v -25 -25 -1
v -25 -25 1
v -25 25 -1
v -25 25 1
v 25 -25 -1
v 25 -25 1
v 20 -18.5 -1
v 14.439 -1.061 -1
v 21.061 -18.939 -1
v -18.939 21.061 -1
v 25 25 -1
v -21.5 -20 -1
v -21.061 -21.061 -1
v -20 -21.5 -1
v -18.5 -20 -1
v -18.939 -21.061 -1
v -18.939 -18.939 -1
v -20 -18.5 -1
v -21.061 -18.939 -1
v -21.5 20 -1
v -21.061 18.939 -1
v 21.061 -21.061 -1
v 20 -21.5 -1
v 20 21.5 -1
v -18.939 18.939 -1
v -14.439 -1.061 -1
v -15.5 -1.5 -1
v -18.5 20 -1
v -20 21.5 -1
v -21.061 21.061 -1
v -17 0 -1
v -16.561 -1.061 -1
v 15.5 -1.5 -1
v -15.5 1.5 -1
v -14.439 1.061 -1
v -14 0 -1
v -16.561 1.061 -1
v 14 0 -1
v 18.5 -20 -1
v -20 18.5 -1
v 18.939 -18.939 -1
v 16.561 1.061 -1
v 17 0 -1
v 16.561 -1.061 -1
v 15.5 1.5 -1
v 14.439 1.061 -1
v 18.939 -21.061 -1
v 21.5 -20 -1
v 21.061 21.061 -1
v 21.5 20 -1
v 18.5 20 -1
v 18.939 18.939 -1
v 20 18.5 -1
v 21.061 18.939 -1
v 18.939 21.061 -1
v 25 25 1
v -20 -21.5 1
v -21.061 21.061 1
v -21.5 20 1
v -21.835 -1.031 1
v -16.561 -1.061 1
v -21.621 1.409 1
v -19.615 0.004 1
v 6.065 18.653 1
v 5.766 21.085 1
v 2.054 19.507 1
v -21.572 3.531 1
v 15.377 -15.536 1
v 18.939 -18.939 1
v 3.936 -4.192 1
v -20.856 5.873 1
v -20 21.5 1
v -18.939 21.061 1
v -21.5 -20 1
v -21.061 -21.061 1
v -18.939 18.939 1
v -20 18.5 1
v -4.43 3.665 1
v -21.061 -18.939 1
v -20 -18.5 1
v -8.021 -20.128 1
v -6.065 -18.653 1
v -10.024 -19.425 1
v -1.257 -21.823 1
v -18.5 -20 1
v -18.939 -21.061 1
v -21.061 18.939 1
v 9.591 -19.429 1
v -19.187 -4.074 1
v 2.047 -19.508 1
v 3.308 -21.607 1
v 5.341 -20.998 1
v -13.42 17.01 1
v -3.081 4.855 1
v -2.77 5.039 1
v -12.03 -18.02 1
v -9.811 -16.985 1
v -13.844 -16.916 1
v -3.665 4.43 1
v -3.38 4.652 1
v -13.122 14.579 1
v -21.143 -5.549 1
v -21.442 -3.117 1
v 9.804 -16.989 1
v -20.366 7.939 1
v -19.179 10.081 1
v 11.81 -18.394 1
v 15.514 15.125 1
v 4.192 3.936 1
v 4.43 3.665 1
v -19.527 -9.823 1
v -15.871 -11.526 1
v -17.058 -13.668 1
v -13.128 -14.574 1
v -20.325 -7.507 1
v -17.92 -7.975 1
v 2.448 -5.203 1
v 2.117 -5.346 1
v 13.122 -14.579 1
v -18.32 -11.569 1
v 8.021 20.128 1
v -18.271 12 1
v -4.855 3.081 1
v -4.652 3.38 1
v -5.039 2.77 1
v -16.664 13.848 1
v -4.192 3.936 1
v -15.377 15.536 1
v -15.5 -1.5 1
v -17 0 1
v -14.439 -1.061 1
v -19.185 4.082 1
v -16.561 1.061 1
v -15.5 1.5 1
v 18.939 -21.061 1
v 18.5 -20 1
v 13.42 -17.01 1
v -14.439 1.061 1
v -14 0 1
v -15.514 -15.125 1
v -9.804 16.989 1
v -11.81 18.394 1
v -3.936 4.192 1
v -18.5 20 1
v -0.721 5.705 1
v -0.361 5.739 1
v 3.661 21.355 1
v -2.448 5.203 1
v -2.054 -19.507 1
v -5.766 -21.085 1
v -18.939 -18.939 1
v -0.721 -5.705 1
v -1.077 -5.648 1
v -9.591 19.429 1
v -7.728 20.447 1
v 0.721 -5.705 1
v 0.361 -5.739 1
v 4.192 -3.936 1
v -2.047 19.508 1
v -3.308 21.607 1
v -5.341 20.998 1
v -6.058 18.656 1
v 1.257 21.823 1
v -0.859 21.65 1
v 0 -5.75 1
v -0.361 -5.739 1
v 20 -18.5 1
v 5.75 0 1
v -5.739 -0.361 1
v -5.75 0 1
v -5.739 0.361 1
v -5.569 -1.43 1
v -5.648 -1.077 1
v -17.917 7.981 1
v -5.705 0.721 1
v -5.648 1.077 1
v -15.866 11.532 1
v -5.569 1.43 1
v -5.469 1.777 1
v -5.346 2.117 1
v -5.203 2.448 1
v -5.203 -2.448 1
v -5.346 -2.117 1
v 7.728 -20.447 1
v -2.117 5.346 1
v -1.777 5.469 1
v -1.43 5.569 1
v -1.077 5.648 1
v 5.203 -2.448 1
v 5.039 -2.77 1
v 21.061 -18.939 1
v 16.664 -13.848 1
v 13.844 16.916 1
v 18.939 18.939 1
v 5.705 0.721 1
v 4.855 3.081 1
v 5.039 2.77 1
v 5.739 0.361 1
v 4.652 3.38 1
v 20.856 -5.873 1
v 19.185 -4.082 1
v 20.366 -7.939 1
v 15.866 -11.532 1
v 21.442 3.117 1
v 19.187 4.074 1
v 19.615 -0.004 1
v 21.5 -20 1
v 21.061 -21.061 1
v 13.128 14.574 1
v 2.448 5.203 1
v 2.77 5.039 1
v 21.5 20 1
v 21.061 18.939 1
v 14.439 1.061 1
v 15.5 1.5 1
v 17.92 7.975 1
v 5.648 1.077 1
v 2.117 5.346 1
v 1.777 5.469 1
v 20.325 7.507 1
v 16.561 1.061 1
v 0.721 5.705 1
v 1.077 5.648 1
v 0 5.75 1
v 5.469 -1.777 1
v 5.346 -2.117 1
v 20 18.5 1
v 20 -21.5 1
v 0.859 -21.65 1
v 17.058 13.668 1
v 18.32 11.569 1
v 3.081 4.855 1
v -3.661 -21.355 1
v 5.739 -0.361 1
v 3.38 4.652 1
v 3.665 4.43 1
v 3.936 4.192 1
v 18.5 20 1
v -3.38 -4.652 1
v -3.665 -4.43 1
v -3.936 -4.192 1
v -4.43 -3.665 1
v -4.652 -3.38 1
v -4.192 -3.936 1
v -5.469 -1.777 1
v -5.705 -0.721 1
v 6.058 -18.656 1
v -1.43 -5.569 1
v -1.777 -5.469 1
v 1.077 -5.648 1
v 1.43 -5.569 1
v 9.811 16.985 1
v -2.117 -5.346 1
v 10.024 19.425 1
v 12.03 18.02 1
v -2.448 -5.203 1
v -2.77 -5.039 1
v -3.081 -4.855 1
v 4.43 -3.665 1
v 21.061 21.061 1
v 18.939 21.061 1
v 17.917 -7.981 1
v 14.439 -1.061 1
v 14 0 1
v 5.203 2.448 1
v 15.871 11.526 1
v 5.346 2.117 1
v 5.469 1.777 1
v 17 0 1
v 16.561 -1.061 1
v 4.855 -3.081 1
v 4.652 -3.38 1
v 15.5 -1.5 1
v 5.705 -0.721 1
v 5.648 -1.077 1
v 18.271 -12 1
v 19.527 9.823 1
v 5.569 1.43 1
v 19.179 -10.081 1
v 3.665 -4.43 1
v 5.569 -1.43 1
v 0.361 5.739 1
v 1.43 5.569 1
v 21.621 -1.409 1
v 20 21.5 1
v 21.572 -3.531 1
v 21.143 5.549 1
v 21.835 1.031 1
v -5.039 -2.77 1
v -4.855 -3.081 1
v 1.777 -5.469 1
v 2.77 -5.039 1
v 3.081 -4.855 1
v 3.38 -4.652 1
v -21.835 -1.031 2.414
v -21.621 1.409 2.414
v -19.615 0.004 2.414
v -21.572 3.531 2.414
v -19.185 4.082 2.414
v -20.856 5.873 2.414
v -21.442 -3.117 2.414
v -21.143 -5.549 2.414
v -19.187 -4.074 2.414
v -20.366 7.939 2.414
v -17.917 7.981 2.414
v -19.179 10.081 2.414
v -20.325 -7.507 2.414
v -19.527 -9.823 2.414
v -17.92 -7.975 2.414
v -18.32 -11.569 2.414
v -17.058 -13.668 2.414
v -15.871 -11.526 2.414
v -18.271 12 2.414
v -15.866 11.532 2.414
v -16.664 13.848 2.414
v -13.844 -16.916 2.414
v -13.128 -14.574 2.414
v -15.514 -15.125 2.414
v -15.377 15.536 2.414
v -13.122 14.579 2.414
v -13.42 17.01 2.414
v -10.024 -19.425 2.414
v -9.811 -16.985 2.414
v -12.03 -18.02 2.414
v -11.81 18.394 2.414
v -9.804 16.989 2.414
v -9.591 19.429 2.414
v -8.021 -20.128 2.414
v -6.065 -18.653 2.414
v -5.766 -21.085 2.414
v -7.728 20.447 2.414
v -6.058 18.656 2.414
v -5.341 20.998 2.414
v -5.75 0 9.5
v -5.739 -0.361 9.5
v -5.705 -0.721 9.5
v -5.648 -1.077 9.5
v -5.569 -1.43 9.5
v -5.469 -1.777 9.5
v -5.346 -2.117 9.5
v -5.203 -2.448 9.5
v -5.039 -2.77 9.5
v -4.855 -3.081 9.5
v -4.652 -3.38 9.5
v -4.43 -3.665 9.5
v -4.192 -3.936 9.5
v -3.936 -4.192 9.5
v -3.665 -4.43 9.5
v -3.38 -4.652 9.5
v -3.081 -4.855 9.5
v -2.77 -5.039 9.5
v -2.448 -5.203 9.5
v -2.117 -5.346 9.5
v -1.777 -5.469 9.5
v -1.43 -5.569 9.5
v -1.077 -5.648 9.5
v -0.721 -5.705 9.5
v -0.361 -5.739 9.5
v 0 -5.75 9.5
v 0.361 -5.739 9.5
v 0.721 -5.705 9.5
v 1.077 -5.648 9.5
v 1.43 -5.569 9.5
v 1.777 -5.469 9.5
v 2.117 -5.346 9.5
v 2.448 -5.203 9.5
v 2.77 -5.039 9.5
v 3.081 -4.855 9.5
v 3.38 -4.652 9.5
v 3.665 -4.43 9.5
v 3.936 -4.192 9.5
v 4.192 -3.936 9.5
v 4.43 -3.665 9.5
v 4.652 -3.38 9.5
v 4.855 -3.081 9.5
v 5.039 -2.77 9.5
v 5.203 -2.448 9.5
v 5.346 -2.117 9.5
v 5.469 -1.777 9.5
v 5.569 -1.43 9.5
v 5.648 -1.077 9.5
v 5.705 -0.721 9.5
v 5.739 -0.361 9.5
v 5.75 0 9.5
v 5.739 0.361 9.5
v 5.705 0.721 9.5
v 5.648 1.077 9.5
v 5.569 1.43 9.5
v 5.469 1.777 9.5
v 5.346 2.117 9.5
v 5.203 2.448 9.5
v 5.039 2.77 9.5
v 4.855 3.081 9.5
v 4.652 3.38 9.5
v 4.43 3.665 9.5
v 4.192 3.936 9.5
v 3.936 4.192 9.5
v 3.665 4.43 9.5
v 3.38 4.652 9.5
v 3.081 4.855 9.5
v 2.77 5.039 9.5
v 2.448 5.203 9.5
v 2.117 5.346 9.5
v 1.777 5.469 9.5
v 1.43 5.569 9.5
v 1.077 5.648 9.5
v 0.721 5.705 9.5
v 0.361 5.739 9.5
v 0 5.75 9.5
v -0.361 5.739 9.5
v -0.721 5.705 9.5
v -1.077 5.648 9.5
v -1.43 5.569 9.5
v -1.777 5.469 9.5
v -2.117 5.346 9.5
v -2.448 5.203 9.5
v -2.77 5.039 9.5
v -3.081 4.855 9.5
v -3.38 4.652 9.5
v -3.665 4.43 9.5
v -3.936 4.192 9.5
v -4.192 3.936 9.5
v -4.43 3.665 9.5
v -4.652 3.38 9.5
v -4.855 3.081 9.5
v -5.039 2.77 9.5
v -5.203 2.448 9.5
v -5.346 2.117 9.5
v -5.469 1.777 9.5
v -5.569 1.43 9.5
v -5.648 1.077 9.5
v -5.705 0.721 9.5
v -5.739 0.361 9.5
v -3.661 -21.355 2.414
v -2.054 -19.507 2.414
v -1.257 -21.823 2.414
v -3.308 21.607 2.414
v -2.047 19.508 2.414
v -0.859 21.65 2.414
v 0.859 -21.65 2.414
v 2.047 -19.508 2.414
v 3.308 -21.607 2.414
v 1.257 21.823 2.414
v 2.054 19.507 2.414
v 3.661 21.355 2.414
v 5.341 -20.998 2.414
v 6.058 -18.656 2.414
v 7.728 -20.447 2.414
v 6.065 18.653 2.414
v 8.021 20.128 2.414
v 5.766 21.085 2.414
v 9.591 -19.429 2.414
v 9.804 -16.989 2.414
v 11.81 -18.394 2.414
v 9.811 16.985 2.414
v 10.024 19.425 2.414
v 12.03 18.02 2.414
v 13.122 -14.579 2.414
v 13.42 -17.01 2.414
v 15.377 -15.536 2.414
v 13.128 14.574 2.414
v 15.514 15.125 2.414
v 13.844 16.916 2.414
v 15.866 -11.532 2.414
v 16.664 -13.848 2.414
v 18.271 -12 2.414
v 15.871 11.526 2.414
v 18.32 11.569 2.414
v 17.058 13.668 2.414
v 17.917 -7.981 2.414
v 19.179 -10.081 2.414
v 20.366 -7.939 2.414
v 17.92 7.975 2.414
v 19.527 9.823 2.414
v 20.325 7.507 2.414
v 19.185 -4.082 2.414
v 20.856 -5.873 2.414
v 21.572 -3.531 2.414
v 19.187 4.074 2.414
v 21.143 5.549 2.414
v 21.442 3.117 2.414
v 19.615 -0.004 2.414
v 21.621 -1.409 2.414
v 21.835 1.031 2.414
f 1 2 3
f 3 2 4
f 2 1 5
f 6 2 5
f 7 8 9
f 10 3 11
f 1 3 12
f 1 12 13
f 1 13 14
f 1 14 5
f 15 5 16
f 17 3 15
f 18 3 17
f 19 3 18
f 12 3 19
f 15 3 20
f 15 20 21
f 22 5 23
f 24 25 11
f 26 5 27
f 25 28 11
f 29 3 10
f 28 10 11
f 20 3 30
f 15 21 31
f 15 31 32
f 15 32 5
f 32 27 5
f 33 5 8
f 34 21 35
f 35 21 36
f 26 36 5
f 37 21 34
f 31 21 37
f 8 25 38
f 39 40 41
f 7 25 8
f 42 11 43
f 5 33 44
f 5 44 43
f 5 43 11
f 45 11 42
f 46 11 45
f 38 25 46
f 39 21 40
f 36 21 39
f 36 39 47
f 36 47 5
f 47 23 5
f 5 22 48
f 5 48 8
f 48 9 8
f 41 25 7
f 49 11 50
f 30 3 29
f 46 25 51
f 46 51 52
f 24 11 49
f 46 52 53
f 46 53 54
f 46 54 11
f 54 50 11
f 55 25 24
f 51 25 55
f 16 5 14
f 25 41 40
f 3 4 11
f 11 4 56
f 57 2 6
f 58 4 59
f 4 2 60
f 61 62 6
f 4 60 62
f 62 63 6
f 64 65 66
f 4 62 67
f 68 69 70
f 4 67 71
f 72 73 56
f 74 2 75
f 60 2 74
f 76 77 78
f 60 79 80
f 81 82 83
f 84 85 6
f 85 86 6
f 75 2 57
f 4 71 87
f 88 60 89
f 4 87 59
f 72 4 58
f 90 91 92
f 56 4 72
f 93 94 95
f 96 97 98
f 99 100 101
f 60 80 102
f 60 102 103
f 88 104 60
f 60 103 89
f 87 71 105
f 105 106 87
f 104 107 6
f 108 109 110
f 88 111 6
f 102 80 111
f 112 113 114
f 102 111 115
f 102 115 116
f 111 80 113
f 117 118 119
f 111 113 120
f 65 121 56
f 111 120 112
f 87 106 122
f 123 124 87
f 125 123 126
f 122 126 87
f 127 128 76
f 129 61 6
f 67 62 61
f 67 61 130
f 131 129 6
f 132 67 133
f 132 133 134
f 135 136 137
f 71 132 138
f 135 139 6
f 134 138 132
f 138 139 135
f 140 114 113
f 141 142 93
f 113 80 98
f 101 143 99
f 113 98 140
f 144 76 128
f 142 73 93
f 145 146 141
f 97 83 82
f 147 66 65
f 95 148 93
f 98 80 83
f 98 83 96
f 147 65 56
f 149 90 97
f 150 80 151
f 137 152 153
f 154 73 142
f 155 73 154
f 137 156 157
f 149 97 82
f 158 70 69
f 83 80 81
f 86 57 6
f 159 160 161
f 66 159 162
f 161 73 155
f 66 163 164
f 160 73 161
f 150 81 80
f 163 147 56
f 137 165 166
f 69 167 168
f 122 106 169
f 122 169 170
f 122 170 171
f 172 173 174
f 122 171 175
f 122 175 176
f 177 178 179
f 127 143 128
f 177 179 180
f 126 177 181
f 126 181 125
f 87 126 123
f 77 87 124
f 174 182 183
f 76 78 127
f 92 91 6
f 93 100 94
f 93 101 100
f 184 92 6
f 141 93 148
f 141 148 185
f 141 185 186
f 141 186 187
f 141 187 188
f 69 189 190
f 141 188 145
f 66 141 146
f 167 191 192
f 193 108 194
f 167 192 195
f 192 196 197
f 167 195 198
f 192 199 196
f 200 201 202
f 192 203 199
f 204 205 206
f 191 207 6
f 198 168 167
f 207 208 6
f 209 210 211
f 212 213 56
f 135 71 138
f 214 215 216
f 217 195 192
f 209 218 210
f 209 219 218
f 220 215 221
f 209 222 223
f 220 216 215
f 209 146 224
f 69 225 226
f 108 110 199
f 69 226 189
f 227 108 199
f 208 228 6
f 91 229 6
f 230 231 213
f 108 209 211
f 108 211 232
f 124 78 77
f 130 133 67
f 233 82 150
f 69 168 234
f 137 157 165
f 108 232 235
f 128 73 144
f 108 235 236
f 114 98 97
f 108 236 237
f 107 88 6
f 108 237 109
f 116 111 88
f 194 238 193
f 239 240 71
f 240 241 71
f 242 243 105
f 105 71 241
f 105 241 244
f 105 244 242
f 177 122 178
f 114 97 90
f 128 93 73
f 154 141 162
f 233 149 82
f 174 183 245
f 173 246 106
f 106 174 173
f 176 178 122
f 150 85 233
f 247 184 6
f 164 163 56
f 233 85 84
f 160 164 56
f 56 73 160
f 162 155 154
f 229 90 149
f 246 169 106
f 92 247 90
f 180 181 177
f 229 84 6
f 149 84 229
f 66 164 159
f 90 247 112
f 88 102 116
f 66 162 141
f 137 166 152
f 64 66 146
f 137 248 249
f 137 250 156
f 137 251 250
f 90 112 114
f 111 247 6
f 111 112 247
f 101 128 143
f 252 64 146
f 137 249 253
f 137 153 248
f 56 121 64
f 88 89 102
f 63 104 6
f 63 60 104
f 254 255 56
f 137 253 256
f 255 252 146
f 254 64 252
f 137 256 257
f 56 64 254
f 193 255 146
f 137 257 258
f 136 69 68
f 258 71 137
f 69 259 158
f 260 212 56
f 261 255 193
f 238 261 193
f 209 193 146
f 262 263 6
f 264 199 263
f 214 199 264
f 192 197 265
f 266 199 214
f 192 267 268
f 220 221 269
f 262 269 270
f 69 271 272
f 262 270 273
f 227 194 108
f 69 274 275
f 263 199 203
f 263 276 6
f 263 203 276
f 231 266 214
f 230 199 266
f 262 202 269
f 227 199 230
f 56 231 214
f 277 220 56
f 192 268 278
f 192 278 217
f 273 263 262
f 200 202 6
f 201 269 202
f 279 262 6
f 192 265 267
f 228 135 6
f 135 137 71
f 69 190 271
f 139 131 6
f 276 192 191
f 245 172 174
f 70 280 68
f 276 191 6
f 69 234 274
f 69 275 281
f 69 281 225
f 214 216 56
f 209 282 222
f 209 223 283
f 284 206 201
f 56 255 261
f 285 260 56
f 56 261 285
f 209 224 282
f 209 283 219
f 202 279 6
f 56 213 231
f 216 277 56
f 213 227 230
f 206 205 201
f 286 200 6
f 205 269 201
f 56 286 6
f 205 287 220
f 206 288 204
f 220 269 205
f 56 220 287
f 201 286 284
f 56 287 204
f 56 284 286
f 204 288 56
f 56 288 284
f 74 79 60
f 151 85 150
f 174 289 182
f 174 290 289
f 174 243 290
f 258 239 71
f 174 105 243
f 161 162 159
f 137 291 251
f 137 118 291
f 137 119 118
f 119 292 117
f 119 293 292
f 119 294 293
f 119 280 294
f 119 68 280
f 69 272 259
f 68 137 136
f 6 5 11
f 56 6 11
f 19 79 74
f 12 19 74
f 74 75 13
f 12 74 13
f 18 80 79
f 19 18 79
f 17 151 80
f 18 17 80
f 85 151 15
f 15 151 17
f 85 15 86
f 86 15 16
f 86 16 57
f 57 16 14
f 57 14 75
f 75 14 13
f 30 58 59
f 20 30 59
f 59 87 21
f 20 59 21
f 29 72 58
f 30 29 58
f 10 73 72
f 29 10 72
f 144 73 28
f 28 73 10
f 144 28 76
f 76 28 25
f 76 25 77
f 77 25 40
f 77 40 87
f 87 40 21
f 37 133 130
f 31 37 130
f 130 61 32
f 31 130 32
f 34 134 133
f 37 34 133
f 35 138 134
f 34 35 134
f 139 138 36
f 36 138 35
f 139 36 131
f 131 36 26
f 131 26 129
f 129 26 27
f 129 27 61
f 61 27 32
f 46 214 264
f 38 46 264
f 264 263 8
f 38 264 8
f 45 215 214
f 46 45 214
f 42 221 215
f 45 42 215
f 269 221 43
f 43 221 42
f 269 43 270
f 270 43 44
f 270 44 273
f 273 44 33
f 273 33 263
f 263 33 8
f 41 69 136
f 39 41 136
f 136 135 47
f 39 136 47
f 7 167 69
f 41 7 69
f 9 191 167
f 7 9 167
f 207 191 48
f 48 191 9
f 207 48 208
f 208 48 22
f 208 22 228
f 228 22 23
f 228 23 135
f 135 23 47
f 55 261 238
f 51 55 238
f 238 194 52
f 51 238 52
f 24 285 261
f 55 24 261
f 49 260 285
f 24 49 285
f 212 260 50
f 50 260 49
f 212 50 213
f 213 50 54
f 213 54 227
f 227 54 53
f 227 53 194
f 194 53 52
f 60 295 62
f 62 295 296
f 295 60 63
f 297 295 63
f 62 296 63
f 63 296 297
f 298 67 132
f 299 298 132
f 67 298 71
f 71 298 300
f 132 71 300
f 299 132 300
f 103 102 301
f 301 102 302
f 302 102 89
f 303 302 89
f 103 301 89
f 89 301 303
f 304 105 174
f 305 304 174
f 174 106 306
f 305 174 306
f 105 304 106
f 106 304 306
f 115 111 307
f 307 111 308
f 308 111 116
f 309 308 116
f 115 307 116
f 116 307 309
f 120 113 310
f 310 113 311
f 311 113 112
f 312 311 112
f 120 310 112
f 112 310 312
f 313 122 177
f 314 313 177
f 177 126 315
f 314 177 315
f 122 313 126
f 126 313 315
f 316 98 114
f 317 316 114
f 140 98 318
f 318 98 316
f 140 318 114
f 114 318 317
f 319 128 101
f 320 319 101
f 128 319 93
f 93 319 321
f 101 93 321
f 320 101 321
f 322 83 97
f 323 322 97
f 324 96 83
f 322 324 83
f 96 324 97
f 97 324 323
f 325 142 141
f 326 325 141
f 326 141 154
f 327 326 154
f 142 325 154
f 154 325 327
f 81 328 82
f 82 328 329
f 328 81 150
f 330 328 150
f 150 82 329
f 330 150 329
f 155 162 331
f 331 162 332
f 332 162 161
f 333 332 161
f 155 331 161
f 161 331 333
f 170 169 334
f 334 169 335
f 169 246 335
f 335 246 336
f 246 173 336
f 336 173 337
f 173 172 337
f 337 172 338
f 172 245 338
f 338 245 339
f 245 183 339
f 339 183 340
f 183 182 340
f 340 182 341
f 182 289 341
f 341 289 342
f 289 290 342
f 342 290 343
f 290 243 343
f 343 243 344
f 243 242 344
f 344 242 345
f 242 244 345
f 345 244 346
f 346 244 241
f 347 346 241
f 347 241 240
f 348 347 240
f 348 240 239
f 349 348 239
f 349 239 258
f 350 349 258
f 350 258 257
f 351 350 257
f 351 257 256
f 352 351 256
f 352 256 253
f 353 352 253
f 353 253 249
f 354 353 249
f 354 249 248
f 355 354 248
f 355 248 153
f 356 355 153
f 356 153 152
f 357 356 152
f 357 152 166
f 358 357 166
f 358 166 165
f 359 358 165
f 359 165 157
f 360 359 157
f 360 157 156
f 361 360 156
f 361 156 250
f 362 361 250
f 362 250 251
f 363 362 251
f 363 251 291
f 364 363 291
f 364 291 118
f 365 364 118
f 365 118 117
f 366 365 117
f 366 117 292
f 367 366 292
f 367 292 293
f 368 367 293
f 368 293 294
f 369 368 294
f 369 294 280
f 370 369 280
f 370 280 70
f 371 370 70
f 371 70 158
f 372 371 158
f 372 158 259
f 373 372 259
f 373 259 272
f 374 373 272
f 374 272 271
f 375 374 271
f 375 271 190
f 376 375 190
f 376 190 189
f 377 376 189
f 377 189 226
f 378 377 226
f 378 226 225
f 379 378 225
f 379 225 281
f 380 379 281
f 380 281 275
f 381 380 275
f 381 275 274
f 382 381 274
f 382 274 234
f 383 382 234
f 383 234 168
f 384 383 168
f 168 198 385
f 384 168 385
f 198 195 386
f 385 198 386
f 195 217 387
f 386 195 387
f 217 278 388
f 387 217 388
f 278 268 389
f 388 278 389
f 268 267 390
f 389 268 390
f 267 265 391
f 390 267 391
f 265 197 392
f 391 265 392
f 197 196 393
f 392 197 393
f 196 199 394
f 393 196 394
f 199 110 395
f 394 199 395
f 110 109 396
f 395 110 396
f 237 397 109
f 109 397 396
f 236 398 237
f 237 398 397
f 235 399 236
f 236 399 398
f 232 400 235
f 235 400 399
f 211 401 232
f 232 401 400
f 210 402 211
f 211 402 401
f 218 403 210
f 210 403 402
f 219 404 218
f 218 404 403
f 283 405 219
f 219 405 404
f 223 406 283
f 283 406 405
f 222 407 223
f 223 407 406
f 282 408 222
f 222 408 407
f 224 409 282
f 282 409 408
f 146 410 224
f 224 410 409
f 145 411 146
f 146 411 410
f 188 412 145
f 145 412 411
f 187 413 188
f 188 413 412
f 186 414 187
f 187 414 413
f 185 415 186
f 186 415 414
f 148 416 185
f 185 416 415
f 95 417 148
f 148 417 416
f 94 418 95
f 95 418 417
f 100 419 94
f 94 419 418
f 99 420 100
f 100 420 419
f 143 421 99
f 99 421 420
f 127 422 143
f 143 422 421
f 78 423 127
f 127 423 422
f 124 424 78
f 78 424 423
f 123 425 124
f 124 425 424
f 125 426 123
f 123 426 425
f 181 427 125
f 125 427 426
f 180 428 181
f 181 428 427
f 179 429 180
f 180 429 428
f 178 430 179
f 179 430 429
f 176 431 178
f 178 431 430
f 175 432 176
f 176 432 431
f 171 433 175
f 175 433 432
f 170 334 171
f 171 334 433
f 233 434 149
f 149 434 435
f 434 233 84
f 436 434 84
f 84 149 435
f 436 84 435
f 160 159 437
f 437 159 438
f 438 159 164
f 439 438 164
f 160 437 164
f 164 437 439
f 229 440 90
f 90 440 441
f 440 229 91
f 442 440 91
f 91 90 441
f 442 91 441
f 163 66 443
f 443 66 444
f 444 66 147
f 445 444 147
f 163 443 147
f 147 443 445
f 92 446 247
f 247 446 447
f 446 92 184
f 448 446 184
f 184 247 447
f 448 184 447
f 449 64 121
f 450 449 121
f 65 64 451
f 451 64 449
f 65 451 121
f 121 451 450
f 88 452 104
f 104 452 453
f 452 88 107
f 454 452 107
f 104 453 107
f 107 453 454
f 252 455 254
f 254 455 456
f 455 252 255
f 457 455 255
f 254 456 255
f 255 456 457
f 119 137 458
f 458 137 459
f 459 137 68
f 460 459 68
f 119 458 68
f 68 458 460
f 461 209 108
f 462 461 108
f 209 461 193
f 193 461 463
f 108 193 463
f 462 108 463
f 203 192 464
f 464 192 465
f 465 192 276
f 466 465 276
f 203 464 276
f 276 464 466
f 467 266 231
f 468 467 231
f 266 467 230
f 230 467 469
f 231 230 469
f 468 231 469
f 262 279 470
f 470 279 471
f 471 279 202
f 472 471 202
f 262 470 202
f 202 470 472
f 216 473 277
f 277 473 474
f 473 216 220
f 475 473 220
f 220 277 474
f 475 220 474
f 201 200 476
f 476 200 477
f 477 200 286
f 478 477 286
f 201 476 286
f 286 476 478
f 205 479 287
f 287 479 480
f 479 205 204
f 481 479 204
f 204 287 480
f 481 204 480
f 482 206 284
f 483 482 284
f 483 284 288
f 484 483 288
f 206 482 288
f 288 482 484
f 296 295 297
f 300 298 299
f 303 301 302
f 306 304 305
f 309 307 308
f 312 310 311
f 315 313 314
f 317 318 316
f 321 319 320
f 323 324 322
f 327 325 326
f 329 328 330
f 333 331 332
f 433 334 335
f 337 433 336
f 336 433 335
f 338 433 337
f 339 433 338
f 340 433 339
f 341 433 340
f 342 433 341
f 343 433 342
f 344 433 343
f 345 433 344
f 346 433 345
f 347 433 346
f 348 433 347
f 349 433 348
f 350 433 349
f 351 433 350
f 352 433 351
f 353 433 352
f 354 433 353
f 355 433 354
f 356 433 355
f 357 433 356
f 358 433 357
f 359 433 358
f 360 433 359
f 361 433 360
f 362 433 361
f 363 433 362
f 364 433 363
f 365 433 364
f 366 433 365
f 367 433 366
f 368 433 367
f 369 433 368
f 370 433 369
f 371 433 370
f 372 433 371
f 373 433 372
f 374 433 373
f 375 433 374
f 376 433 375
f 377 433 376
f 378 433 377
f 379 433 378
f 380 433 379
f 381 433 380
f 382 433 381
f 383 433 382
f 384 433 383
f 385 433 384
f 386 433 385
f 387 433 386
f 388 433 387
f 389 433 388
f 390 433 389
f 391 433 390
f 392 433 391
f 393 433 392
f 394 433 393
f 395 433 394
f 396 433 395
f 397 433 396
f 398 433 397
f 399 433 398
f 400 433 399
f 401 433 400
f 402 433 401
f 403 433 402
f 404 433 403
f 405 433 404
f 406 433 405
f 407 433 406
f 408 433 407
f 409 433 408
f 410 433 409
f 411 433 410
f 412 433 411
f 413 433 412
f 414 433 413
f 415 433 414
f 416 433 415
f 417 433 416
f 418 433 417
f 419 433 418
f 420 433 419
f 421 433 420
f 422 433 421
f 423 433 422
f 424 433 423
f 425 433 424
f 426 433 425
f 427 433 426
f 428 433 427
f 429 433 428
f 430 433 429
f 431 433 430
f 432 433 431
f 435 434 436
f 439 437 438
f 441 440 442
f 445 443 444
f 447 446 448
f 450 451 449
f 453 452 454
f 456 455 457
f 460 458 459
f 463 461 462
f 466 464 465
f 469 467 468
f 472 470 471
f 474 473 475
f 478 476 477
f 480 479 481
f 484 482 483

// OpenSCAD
module opticsMount_standard_base(){
	//base
	difference(){
		//baseBlock
		translate([0,0,]) color([.4,.2,.9]) cube(size=[50,50,2],center=true);
		//baseScrewholes
		translate([20,20,0]) color([1,0,0]) cylinder(h=5,r=1.5,$fn=8,center=true);
		translate([20,-20,0]) color([1,0,0]) cylinder(h=5,r=1.5,$fn=8,center=true);
		translate([-20,20,0]) color([1,0,0]) cylinder(h=5,r=1.5,$fn=8,center=true);
		translate([-20,-20,0]) color([1,0,0]) cylinder(h=5,r=1.5,$fn=8,center=true);

		translate([15.5,0,0]) color([1,0,0]) cylinder(h=5,r=1.5,$fn=8,center=true);
		translate([-15.5,0,0]) color([1,0,0]) cylinder(h=5,r=1.5,$fn=8,center=true);
	}
	translate([0,0,5]) cylinder(h=9,r=5.75,$fn=100,center=true);		
	rotate([0,0,19]){
		for ( i = [0 : 36] ){
			rotate( i * 360 / 30, [0,0, 90])
				translate([9,19, 1])
				sphere(r = 2,$fn=2);
		}
	}
}

translate([0,0,0]){
	opticsMount_standard_base();
}
